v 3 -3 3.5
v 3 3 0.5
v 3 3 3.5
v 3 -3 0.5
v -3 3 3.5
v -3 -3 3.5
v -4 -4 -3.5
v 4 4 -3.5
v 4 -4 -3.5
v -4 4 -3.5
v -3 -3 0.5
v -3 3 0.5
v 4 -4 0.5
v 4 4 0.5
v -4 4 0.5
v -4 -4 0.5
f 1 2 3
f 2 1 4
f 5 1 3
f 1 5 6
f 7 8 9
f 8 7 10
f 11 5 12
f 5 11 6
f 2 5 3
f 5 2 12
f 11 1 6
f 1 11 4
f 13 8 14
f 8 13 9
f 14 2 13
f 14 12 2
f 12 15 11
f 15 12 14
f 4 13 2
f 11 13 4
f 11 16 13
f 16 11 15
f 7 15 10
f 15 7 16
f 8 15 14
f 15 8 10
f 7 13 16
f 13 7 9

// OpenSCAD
cube([6,6,7],center=true);
translate([0,0,-1.5])
cube([8,8,4],center=true);
